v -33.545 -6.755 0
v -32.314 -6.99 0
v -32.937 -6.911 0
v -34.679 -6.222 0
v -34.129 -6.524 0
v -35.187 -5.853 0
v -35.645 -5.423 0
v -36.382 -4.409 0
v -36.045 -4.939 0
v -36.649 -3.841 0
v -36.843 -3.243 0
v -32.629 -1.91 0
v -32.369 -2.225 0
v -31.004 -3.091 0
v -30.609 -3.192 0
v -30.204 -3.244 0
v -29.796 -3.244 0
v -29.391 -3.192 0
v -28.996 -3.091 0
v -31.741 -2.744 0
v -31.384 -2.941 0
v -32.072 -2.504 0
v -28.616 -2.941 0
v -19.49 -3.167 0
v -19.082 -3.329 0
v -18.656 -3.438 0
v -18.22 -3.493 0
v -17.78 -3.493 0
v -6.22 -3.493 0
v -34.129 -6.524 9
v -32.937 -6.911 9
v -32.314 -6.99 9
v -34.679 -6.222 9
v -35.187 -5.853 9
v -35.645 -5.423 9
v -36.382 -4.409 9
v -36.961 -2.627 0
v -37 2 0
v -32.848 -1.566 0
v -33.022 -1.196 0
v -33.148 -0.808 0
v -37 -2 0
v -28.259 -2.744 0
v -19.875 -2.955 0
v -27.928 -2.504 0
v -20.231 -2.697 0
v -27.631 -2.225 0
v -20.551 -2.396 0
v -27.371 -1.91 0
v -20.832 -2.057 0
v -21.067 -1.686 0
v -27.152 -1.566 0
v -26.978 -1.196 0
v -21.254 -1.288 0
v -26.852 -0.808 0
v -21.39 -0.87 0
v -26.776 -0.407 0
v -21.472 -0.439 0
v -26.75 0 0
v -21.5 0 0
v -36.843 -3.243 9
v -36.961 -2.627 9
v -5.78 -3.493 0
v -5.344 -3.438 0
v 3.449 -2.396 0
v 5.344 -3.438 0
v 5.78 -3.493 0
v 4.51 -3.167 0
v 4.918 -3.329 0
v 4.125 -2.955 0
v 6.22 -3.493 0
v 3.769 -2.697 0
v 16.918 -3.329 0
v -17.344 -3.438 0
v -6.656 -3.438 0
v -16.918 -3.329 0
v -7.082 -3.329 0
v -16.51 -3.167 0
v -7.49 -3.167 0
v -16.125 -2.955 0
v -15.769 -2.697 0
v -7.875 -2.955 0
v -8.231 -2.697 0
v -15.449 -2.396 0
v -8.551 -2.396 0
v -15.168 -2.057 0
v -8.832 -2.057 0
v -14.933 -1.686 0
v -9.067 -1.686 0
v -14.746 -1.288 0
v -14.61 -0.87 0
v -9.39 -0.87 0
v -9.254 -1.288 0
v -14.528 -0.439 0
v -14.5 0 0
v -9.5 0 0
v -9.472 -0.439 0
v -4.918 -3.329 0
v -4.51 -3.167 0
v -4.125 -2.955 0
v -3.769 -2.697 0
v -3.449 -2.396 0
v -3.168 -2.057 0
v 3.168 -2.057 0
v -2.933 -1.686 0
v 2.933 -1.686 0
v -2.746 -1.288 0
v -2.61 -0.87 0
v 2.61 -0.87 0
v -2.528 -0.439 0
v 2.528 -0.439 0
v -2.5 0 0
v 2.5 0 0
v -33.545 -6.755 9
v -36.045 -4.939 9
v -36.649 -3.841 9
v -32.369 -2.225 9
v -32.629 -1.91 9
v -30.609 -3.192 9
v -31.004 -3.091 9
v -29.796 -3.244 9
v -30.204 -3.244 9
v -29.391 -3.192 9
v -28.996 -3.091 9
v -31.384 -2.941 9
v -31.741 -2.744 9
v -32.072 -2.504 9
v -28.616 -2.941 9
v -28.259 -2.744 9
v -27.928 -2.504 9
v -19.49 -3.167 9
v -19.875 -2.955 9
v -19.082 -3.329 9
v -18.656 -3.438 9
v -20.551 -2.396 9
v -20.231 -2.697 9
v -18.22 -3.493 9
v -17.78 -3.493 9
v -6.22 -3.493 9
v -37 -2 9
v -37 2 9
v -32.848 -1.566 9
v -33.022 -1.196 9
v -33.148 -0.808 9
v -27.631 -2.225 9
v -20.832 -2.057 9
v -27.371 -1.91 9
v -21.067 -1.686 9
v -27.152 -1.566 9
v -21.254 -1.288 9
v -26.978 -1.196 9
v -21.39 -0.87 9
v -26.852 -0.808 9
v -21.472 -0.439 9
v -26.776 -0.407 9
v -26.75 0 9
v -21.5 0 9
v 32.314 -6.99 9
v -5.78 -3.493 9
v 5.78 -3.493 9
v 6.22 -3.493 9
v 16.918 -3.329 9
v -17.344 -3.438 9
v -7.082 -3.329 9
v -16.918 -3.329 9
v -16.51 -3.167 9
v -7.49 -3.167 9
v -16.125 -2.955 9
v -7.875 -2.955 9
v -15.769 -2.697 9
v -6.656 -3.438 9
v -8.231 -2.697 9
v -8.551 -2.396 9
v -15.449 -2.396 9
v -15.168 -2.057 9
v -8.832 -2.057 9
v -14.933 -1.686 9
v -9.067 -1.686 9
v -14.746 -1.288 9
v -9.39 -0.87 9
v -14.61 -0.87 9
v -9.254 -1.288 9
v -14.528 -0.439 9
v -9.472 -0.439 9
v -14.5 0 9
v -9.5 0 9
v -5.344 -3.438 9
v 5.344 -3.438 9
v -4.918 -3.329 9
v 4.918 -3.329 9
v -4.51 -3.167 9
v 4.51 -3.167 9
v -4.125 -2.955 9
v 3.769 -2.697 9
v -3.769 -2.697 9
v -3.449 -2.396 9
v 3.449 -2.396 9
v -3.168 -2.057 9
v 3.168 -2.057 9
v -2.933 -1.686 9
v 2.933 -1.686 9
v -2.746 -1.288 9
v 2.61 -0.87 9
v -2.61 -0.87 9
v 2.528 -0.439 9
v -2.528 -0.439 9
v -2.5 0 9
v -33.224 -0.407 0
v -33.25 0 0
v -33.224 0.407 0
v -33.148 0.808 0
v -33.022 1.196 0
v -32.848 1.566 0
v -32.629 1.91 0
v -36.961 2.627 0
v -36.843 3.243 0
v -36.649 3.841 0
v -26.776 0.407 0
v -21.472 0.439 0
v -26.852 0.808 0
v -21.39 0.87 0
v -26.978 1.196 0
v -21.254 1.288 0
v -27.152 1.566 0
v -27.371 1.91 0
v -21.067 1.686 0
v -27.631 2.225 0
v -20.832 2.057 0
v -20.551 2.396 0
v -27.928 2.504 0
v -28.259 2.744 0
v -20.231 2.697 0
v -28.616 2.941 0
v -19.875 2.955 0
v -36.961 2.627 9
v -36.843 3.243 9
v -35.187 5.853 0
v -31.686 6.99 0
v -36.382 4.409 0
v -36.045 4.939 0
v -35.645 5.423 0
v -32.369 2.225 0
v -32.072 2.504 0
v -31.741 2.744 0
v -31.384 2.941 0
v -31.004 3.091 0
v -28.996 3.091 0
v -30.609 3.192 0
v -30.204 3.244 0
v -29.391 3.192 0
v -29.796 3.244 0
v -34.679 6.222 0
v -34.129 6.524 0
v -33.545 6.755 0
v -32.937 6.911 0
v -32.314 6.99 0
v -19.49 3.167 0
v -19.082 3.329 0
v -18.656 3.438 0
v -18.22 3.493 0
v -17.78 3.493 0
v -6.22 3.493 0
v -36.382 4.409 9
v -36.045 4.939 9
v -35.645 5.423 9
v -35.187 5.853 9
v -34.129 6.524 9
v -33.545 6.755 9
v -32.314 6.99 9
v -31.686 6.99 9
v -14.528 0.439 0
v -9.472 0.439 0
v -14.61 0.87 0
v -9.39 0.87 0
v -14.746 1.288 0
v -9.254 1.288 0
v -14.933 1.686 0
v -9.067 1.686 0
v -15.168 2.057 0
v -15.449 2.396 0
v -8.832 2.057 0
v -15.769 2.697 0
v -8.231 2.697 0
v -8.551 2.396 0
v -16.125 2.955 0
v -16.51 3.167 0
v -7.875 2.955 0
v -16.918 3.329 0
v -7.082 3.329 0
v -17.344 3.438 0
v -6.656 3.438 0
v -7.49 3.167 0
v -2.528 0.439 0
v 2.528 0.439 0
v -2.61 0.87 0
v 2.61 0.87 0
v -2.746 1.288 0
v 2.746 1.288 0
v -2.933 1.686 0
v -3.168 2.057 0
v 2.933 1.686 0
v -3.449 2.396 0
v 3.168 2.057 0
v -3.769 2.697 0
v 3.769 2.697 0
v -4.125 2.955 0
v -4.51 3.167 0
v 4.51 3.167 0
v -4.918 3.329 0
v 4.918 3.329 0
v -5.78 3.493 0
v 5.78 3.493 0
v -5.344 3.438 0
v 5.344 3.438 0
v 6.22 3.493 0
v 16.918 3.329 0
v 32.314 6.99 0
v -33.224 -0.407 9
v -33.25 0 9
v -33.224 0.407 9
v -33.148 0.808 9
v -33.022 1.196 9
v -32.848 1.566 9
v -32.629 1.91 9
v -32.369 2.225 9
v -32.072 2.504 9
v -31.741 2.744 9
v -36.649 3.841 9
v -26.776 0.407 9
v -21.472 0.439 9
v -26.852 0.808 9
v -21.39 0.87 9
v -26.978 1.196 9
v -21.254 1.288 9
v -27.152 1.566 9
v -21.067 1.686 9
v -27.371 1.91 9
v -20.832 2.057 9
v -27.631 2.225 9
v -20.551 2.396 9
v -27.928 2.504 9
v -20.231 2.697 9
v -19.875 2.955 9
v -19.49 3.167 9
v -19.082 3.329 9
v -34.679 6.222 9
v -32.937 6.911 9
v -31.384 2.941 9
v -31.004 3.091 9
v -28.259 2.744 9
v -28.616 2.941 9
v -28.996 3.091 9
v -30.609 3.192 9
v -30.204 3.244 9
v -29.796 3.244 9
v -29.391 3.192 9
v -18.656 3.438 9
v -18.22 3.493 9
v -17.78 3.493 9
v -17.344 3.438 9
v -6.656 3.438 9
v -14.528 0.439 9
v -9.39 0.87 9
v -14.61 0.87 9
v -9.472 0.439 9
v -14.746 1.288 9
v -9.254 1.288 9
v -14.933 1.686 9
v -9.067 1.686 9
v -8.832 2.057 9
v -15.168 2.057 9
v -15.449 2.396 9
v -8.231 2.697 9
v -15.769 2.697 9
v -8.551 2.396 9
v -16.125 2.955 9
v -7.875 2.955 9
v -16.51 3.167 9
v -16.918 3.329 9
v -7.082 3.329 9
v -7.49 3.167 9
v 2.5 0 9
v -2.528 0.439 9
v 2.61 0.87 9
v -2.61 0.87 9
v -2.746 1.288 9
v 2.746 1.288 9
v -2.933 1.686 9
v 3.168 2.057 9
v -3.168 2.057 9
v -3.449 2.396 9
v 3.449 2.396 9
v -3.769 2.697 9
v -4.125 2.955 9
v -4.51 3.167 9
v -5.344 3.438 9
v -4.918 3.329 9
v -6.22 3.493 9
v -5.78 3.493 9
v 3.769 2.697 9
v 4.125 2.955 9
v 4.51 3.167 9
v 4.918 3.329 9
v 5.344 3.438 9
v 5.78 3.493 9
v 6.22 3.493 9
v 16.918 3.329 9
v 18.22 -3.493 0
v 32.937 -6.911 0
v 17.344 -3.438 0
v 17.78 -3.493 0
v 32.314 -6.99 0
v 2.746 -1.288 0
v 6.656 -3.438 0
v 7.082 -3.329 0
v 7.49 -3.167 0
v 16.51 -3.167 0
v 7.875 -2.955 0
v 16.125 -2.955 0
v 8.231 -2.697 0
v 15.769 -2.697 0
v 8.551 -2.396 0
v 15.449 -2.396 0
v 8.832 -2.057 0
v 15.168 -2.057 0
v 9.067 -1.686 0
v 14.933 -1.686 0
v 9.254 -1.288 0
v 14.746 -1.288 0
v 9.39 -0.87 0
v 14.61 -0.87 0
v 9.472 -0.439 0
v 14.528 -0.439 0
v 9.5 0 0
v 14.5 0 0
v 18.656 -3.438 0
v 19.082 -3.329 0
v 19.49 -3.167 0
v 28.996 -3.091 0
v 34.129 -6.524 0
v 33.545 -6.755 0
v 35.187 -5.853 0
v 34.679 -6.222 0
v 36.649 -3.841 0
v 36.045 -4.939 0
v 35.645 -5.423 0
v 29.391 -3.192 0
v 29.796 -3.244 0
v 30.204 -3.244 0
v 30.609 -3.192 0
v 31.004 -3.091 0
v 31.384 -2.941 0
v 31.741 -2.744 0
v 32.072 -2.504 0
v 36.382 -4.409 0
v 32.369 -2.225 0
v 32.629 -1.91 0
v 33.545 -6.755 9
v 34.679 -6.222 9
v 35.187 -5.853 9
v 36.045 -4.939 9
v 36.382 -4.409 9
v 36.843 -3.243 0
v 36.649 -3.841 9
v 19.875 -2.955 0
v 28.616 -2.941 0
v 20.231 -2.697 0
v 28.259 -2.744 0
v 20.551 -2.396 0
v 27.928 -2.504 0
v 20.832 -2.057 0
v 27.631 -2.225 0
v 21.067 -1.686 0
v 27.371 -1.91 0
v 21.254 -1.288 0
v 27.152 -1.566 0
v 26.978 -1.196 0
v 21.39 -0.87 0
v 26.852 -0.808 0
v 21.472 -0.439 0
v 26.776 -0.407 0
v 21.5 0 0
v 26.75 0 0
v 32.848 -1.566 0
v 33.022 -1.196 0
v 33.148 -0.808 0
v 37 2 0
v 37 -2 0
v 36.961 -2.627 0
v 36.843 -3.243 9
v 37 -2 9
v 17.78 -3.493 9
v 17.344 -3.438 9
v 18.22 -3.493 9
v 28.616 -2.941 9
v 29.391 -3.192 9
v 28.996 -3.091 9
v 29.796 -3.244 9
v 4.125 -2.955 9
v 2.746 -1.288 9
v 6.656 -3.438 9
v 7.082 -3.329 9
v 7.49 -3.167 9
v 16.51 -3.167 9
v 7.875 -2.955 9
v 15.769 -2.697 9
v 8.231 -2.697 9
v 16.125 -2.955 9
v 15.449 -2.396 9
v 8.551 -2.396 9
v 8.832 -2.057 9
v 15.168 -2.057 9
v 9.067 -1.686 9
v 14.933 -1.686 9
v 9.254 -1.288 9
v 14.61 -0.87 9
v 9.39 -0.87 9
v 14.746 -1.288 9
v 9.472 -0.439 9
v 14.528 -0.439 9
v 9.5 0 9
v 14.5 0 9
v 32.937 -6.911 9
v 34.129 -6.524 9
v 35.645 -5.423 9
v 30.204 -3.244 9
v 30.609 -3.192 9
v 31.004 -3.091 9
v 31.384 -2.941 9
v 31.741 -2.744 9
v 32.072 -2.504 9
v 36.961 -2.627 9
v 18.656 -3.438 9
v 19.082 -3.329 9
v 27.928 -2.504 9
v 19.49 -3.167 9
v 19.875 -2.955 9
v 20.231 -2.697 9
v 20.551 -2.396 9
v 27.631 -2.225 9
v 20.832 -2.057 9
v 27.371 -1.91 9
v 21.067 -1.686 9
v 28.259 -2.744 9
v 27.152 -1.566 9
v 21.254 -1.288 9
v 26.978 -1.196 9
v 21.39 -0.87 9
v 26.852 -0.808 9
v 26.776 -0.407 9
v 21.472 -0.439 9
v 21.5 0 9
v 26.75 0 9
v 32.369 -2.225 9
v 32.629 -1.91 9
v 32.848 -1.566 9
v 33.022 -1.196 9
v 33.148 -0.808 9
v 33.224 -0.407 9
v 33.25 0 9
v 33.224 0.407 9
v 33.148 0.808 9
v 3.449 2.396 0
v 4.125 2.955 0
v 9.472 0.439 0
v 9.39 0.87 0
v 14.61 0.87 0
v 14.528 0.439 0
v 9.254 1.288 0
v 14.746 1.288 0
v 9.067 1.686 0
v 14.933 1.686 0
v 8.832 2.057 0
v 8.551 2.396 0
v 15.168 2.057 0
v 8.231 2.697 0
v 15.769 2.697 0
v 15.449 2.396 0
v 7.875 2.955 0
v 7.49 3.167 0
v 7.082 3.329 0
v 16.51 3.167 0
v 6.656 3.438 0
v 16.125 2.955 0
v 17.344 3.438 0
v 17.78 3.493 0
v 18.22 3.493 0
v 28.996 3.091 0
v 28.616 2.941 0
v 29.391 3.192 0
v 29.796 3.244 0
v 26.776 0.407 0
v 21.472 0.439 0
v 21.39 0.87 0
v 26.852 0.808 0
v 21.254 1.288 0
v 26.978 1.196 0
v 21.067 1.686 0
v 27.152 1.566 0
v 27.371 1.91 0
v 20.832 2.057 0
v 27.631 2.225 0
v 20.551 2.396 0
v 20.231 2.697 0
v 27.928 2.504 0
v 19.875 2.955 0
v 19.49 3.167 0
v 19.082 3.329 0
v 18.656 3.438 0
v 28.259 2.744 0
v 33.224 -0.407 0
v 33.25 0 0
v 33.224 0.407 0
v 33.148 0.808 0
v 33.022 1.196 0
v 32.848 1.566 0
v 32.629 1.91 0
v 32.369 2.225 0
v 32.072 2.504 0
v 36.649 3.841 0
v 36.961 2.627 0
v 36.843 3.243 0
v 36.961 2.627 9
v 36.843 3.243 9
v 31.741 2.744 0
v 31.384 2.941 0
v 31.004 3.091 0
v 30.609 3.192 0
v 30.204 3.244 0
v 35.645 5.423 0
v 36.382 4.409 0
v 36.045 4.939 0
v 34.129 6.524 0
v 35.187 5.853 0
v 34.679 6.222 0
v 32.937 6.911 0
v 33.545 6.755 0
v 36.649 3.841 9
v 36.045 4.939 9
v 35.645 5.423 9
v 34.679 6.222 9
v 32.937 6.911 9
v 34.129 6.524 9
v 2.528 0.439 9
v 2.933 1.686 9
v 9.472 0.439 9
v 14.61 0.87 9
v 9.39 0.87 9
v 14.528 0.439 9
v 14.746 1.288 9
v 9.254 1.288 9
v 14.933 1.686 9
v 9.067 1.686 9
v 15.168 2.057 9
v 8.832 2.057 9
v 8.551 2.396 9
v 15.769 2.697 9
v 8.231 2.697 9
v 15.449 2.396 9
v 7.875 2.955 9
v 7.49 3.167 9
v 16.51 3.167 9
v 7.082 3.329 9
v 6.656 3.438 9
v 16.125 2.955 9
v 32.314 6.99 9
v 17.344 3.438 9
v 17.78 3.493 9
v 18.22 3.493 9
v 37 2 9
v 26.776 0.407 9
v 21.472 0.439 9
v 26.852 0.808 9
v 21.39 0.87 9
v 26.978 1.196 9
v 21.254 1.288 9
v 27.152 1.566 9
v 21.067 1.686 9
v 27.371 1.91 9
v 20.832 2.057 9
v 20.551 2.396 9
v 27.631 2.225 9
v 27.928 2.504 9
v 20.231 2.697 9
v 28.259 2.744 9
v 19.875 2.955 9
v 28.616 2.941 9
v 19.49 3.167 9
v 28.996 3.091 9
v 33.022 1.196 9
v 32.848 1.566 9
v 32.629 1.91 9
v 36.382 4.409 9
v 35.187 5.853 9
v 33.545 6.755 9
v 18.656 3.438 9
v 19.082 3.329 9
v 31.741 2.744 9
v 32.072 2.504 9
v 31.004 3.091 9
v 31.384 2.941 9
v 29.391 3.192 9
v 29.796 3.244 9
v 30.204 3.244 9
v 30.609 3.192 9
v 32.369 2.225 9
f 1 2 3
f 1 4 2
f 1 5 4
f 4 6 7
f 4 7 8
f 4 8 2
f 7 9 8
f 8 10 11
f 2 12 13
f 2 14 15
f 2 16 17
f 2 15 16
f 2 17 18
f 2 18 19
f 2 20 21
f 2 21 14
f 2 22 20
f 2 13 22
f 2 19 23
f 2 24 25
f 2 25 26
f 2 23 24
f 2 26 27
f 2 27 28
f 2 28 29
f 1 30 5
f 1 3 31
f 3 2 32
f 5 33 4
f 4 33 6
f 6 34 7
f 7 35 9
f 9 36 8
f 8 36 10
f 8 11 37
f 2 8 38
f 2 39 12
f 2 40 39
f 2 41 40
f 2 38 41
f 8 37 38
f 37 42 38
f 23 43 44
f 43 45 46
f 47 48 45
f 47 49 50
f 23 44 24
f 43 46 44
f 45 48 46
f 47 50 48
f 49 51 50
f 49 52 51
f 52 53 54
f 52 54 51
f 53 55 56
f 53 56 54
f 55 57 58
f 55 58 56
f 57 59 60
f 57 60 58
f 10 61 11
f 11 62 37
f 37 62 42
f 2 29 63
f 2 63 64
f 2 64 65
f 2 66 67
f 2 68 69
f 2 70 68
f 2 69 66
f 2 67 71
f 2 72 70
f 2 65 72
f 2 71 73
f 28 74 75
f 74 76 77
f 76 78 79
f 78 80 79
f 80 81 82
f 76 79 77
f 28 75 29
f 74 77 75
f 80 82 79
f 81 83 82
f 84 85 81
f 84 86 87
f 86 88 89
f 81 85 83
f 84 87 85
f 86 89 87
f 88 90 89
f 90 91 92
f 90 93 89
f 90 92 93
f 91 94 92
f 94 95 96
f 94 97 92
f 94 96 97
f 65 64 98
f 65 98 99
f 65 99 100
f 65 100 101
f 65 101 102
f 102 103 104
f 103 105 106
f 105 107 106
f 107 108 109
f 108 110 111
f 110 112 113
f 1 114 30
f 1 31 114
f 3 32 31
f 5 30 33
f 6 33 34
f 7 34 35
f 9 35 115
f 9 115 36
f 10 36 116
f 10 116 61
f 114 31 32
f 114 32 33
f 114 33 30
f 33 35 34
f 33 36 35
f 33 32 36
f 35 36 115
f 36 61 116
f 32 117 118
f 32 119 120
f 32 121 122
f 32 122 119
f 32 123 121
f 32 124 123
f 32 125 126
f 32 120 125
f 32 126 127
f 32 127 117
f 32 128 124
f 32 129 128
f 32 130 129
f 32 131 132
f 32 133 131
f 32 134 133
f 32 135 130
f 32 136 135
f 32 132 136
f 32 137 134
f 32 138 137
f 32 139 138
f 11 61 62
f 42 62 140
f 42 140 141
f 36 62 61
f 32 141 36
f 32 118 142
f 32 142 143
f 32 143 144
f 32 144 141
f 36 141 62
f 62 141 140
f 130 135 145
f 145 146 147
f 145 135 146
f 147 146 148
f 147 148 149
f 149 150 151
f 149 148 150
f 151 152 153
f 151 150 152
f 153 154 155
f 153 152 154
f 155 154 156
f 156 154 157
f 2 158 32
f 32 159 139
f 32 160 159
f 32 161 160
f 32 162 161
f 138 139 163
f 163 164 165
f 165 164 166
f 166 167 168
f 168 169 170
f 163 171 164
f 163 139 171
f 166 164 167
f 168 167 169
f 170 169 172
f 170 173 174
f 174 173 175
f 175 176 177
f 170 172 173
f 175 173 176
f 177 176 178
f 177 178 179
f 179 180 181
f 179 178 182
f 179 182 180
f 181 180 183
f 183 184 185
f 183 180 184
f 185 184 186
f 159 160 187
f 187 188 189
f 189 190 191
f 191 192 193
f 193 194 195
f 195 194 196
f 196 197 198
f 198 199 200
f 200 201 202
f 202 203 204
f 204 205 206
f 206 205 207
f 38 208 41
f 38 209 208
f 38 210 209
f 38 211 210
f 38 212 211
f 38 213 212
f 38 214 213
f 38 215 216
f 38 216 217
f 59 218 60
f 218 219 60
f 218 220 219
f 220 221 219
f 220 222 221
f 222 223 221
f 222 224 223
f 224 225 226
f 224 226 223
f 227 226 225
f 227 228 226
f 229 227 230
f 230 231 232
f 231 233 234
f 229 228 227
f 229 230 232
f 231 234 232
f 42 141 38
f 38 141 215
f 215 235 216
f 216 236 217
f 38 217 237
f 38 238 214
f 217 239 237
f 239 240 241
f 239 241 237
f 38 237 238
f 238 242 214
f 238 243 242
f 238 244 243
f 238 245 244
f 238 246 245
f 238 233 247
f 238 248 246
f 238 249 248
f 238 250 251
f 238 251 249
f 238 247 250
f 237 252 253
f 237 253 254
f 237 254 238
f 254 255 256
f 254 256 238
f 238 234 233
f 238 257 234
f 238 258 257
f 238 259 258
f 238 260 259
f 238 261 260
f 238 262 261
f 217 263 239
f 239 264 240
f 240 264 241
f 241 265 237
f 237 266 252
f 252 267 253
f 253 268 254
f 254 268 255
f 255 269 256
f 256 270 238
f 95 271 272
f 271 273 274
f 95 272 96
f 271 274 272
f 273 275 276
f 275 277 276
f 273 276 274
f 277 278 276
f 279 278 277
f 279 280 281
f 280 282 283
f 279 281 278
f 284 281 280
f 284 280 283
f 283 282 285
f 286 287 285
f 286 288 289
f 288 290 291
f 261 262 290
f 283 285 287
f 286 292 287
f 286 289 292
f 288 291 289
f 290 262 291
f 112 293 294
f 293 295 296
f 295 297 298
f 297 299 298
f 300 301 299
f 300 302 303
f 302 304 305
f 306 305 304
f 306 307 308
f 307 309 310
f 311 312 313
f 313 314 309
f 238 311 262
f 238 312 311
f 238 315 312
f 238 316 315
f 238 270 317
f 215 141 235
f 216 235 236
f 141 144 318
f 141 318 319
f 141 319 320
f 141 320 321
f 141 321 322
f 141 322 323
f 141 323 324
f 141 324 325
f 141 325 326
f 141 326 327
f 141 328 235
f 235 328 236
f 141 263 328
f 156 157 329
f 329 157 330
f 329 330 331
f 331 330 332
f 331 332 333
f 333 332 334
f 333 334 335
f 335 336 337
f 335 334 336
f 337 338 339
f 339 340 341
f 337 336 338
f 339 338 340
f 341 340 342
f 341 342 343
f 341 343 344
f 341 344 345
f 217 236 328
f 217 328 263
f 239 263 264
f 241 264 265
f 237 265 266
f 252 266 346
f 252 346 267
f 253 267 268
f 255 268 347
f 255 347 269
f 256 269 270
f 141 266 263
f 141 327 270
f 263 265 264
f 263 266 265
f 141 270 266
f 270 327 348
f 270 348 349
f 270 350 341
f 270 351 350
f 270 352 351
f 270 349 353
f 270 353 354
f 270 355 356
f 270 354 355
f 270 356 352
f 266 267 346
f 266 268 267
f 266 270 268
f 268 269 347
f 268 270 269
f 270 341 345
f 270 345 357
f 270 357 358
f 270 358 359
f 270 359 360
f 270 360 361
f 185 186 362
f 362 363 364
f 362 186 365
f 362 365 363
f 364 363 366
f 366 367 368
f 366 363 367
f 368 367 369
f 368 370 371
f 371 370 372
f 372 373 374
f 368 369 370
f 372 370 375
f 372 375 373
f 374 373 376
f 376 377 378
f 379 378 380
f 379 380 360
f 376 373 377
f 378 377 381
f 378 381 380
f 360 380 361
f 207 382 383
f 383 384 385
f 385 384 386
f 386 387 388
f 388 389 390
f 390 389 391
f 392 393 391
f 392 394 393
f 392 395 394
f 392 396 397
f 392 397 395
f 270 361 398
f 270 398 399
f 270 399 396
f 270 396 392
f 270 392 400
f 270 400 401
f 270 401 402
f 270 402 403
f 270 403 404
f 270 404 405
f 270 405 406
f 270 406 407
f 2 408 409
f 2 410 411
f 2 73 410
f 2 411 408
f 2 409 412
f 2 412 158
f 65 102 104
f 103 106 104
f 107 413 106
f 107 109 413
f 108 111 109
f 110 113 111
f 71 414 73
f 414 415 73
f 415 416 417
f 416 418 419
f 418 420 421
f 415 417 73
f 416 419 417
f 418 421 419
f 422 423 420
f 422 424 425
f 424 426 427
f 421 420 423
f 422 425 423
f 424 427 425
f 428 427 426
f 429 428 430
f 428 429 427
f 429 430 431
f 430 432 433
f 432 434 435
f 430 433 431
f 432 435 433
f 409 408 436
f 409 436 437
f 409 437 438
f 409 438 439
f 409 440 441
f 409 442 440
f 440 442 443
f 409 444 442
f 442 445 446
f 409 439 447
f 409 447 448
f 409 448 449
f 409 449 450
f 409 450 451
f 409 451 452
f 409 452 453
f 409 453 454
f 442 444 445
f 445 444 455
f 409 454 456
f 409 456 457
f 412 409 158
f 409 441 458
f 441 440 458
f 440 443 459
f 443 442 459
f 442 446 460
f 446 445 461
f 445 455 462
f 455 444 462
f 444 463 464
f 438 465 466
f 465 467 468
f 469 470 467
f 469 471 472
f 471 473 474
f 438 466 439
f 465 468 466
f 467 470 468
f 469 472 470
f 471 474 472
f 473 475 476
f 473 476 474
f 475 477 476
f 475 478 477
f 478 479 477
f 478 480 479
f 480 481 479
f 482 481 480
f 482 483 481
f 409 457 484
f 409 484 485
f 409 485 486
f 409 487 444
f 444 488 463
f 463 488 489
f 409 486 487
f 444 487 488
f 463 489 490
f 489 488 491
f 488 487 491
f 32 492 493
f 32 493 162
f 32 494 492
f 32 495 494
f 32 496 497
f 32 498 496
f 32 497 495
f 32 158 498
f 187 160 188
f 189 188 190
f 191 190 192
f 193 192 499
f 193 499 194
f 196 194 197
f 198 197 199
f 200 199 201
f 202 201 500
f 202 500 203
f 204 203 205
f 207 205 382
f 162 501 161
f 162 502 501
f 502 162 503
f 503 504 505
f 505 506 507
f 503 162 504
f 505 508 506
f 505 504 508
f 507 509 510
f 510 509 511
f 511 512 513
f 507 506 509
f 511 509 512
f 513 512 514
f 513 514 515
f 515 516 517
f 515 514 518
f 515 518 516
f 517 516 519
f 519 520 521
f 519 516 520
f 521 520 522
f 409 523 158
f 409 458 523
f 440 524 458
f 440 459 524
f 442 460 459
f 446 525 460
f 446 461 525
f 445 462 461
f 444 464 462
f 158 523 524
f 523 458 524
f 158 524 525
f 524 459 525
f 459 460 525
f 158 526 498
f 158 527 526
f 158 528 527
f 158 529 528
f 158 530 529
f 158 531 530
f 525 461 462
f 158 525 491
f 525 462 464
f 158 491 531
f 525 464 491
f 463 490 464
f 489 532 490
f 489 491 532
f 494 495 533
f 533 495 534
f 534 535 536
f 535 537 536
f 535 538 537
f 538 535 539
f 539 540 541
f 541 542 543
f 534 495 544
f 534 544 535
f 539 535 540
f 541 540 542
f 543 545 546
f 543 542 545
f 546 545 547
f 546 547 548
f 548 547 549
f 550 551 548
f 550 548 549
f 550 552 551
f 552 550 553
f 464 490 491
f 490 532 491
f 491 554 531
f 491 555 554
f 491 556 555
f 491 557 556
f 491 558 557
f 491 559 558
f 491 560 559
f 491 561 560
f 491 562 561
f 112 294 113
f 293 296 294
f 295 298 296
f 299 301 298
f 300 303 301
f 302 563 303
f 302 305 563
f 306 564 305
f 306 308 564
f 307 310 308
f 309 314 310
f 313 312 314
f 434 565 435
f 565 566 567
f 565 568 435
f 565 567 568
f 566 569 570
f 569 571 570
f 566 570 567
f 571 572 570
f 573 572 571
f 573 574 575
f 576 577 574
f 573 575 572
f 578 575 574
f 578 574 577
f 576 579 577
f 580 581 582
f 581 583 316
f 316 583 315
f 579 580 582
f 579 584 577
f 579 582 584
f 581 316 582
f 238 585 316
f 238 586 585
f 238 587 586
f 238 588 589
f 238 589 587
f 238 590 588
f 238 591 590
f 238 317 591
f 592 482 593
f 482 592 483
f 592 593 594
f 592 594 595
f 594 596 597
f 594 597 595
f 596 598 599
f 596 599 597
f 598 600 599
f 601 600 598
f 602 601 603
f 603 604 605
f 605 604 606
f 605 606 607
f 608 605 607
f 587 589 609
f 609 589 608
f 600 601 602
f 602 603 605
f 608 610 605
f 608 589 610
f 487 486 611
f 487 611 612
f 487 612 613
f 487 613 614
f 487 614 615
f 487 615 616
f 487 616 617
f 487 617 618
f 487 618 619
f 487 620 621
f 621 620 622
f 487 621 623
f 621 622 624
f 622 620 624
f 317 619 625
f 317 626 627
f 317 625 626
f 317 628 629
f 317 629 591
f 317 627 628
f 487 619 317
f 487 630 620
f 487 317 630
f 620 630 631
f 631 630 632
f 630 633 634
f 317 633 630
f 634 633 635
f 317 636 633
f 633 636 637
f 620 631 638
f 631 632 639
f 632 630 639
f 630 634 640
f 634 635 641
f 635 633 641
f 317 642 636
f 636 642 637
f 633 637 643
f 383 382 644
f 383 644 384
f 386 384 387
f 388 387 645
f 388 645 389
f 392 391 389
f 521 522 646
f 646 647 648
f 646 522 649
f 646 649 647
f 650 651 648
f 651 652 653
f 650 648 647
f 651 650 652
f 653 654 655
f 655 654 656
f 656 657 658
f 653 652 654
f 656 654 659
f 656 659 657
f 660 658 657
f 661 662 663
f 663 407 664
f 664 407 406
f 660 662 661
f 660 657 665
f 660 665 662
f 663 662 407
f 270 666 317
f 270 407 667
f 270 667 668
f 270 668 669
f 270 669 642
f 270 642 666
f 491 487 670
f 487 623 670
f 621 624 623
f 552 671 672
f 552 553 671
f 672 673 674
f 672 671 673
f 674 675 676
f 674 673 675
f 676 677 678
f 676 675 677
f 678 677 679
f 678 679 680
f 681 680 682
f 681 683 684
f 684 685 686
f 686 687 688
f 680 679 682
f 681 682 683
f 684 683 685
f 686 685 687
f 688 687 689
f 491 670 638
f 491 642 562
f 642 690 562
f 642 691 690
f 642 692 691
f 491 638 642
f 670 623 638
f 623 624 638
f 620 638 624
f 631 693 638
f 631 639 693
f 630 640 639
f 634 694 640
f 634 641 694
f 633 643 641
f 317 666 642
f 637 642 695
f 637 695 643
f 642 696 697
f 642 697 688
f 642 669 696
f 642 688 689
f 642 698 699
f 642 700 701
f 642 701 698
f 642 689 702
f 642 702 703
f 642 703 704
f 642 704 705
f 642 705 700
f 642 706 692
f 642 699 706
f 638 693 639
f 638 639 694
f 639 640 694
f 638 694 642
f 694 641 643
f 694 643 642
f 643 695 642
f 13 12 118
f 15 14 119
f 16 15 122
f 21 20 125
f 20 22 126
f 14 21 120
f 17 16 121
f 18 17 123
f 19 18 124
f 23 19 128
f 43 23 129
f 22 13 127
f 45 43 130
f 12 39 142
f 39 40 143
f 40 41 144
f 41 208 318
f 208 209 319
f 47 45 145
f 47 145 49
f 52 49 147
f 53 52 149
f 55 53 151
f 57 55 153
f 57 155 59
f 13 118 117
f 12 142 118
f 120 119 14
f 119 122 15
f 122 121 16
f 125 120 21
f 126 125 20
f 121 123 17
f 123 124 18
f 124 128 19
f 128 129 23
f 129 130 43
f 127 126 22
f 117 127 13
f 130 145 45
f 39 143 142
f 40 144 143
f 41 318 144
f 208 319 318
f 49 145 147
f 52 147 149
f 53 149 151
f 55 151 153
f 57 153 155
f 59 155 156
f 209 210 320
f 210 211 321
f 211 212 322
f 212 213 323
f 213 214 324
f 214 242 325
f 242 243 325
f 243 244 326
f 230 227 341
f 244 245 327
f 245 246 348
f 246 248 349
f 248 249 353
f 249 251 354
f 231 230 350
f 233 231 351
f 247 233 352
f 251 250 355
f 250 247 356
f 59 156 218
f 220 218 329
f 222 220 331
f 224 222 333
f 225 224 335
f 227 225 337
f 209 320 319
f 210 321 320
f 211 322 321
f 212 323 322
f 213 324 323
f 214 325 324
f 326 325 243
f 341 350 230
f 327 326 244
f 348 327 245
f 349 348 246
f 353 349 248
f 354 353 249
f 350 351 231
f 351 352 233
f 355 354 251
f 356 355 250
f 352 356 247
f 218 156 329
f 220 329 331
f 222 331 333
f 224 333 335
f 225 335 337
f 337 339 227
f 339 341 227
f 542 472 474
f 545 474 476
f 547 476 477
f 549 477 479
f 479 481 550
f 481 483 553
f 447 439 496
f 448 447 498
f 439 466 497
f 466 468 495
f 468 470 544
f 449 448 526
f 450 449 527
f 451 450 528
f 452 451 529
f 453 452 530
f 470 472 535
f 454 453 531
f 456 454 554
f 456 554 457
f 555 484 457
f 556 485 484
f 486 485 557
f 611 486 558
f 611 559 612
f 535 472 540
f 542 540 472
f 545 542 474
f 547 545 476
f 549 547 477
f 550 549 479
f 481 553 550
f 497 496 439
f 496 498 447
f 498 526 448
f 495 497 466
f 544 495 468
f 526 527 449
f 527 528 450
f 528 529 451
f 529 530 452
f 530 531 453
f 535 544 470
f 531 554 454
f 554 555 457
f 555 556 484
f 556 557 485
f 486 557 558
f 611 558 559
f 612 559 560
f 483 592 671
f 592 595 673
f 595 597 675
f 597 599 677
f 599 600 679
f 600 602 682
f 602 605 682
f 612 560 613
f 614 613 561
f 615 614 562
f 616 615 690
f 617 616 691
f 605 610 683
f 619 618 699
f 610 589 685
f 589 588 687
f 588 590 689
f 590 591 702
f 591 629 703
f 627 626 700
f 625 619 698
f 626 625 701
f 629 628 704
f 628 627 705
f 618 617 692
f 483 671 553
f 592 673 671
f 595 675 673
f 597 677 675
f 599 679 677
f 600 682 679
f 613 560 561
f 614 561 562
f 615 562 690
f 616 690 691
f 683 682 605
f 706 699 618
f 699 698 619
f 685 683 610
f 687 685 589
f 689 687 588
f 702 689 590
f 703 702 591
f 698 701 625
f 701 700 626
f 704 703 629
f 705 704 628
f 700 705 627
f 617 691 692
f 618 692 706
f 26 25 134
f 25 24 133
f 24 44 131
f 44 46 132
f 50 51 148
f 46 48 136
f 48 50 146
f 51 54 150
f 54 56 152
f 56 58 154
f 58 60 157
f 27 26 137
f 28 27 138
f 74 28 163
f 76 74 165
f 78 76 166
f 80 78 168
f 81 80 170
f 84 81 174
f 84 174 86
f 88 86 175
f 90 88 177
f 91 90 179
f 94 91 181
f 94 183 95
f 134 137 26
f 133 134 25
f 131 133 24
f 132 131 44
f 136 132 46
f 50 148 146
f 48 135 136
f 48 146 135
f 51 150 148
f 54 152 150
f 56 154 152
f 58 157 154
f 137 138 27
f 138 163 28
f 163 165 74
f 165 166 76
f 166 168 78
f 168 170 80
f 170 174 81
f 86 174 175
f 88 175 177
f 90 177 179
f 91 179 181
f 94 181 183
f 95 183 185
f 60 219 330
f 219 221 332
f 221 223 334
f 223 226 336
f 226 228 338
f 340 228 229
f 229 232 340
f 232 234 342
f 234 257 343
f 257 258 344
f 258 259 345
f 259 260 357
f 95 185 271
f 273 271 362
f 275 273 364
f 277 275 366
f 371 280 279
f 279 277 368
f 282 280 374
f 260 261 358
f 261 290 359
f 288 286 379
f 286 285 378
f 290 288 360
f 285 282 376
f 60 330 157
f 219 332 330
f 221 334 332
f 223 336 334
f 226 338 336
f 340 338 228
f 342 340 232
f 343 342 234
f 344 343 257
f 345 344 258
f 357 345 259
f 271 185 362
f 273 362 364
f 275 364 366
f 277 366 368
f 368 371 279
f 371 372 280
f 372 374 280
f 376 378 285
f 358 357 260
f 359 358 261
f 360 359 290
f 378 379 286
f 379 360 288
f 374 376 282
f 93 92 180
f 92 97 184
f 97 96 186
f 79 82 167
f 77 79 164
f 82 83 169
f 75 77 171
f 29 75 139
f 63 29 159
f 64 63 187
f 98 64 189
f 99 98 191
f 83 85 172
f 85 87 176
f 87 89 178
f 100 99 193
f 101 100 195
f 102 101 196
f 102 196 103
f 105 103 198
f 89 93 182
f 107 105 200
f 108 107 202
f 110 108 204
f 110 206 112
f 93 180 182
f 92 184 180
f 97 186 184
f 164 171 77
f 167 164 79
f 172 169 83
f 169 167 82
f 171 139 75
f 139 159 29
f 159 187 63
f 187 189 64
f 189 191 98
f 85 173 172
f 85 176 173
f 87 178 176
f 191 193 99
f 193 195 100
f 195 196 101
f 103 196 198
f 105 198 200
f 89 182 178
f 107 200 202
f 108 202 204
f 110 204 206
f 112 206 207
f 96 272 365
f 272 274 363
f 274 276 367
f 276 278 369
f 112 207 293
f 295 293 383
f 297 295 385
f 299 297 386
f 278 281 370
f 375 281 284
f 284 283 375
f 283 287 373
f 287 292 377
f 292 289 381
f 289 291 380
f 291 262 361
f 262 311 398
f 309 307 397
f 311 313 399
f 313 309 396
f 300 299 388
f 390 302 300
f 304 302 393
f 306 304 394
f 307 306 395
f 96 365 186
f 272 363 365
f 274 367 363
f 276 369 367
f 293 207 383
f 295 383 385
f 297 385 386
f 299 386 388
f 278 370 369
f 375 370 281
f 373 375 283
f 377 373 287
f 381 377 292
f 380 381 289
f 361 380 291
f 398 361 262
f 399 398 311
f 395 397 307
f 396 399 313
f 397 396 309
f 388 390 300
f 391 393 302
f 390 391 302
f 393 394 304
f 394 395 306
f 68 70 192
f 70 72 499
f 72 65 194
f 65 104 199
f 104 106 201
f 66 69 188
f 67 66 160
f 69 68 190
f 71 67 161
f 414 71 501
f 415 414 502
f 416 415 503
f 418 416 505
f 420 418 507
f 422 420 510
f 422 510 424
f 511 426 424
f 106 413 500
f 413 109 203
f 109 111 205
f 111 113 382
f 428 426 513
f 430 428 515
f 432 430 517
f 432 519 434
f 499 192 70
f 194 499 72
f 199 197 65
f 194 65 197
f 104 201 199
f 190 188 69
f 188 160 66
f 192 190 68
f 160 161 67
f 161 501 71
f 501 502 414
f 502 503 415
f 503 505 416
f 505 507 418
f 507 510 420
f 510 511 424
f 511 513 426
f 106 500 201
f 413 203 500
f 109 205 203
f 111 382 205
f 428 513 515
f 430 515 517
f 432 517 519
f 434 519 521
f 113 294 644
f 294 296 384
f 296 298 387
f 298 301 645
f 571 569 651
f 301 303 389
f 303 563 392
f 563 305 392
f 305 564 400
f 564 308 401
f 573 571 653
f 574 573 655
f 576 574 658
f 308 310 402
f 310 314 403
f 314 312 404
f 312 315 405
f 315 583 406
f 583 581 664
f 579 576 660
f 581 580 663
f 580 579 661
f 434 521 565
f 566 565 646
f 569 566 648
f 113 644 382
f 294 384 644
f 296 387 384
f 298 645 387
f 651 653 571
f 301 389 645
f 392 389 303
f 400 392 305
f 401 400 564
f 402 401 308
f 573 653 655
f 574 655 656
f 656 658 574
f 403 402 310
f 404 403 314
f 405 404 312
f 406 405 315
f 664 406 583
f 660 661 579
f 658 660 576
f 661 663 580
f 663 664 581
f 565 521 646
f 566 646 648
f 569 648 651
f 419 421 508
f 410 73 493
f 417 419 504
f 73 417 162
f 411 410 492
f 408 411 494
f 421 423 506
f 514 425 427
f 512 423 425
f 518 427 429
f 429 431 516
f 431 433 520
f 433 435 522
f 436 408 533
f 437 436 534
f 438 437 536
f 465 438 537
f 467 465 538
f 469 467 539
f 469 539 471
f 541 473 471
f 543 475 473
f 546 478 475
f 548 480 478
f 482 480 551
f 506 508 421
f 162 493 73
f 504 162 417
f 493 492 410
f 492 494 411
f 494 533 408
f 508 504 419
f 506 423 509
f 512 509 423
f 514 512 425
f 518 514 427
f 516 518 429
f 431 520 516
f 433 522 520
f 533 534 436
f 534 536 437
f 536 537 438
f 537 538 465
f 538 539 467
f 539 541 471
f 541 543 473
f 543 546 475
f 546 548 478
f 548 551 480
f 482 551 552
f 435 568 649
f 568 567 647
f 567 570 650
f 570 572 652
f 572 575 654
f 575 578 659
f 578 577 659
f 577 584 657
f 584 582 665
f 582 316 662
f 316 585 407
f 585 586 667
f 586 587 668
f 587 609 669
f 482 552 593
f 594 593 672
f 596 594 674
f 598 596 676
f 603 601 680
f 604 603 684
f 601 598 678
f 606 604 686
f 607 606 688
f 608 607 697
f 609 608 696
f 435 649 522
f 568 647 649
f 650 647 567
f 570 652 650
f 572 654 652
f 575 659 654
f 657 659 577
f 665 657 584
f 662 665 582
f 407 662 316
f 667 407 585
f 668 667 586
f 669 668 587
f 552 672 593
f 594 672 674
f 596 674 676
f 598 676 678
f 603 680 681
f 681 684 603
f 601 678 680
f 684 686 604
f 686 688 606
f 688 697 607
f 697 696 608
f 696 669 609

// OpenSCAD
$fn = 50;

difference() {
	union() {
		hull() {
			translate(v = [-32.0, 2.0, 0]) {
				cylinder(h = 9, r = 5);
			}
			translate(v = [32.0, 2.0, 0]) {
				cylinder(h = 9, r = 5);
			}
			translate(v = [-32.0, -2.0, 0]) {
				cylinder(h = 9, r = 5);
			}
			translate(v = [32.0, -2.0, 0]) {
				cylinder(h = 9, r = 5);
			}
		}
	}
	union() {
		translate(v = [-30.0, 0.0, 0]) {
			cylinder(h = 9, r = 3.25);
		}
		translate(v = [30.0, 0.0, 0]) {
			cylinder(h = 9, r = 3.25);
		}
		translate(v = [-18.0, 0, 0.0]) {
			cylinder(h = 9, r = 3.5);
		}
		translate(v = [-6.0, 0, 0.0]) {
			cylinder(h = 9, r = 3.5);
		}
		translate(v = [6.0, 0, 0.0]) {
			cylinder(h = 9, r = 3.5);
		}
		translate(v = [18.0, 0, 0.0]) {
			cylinder(h = 9, r = 3.5);
		}
	}
}
